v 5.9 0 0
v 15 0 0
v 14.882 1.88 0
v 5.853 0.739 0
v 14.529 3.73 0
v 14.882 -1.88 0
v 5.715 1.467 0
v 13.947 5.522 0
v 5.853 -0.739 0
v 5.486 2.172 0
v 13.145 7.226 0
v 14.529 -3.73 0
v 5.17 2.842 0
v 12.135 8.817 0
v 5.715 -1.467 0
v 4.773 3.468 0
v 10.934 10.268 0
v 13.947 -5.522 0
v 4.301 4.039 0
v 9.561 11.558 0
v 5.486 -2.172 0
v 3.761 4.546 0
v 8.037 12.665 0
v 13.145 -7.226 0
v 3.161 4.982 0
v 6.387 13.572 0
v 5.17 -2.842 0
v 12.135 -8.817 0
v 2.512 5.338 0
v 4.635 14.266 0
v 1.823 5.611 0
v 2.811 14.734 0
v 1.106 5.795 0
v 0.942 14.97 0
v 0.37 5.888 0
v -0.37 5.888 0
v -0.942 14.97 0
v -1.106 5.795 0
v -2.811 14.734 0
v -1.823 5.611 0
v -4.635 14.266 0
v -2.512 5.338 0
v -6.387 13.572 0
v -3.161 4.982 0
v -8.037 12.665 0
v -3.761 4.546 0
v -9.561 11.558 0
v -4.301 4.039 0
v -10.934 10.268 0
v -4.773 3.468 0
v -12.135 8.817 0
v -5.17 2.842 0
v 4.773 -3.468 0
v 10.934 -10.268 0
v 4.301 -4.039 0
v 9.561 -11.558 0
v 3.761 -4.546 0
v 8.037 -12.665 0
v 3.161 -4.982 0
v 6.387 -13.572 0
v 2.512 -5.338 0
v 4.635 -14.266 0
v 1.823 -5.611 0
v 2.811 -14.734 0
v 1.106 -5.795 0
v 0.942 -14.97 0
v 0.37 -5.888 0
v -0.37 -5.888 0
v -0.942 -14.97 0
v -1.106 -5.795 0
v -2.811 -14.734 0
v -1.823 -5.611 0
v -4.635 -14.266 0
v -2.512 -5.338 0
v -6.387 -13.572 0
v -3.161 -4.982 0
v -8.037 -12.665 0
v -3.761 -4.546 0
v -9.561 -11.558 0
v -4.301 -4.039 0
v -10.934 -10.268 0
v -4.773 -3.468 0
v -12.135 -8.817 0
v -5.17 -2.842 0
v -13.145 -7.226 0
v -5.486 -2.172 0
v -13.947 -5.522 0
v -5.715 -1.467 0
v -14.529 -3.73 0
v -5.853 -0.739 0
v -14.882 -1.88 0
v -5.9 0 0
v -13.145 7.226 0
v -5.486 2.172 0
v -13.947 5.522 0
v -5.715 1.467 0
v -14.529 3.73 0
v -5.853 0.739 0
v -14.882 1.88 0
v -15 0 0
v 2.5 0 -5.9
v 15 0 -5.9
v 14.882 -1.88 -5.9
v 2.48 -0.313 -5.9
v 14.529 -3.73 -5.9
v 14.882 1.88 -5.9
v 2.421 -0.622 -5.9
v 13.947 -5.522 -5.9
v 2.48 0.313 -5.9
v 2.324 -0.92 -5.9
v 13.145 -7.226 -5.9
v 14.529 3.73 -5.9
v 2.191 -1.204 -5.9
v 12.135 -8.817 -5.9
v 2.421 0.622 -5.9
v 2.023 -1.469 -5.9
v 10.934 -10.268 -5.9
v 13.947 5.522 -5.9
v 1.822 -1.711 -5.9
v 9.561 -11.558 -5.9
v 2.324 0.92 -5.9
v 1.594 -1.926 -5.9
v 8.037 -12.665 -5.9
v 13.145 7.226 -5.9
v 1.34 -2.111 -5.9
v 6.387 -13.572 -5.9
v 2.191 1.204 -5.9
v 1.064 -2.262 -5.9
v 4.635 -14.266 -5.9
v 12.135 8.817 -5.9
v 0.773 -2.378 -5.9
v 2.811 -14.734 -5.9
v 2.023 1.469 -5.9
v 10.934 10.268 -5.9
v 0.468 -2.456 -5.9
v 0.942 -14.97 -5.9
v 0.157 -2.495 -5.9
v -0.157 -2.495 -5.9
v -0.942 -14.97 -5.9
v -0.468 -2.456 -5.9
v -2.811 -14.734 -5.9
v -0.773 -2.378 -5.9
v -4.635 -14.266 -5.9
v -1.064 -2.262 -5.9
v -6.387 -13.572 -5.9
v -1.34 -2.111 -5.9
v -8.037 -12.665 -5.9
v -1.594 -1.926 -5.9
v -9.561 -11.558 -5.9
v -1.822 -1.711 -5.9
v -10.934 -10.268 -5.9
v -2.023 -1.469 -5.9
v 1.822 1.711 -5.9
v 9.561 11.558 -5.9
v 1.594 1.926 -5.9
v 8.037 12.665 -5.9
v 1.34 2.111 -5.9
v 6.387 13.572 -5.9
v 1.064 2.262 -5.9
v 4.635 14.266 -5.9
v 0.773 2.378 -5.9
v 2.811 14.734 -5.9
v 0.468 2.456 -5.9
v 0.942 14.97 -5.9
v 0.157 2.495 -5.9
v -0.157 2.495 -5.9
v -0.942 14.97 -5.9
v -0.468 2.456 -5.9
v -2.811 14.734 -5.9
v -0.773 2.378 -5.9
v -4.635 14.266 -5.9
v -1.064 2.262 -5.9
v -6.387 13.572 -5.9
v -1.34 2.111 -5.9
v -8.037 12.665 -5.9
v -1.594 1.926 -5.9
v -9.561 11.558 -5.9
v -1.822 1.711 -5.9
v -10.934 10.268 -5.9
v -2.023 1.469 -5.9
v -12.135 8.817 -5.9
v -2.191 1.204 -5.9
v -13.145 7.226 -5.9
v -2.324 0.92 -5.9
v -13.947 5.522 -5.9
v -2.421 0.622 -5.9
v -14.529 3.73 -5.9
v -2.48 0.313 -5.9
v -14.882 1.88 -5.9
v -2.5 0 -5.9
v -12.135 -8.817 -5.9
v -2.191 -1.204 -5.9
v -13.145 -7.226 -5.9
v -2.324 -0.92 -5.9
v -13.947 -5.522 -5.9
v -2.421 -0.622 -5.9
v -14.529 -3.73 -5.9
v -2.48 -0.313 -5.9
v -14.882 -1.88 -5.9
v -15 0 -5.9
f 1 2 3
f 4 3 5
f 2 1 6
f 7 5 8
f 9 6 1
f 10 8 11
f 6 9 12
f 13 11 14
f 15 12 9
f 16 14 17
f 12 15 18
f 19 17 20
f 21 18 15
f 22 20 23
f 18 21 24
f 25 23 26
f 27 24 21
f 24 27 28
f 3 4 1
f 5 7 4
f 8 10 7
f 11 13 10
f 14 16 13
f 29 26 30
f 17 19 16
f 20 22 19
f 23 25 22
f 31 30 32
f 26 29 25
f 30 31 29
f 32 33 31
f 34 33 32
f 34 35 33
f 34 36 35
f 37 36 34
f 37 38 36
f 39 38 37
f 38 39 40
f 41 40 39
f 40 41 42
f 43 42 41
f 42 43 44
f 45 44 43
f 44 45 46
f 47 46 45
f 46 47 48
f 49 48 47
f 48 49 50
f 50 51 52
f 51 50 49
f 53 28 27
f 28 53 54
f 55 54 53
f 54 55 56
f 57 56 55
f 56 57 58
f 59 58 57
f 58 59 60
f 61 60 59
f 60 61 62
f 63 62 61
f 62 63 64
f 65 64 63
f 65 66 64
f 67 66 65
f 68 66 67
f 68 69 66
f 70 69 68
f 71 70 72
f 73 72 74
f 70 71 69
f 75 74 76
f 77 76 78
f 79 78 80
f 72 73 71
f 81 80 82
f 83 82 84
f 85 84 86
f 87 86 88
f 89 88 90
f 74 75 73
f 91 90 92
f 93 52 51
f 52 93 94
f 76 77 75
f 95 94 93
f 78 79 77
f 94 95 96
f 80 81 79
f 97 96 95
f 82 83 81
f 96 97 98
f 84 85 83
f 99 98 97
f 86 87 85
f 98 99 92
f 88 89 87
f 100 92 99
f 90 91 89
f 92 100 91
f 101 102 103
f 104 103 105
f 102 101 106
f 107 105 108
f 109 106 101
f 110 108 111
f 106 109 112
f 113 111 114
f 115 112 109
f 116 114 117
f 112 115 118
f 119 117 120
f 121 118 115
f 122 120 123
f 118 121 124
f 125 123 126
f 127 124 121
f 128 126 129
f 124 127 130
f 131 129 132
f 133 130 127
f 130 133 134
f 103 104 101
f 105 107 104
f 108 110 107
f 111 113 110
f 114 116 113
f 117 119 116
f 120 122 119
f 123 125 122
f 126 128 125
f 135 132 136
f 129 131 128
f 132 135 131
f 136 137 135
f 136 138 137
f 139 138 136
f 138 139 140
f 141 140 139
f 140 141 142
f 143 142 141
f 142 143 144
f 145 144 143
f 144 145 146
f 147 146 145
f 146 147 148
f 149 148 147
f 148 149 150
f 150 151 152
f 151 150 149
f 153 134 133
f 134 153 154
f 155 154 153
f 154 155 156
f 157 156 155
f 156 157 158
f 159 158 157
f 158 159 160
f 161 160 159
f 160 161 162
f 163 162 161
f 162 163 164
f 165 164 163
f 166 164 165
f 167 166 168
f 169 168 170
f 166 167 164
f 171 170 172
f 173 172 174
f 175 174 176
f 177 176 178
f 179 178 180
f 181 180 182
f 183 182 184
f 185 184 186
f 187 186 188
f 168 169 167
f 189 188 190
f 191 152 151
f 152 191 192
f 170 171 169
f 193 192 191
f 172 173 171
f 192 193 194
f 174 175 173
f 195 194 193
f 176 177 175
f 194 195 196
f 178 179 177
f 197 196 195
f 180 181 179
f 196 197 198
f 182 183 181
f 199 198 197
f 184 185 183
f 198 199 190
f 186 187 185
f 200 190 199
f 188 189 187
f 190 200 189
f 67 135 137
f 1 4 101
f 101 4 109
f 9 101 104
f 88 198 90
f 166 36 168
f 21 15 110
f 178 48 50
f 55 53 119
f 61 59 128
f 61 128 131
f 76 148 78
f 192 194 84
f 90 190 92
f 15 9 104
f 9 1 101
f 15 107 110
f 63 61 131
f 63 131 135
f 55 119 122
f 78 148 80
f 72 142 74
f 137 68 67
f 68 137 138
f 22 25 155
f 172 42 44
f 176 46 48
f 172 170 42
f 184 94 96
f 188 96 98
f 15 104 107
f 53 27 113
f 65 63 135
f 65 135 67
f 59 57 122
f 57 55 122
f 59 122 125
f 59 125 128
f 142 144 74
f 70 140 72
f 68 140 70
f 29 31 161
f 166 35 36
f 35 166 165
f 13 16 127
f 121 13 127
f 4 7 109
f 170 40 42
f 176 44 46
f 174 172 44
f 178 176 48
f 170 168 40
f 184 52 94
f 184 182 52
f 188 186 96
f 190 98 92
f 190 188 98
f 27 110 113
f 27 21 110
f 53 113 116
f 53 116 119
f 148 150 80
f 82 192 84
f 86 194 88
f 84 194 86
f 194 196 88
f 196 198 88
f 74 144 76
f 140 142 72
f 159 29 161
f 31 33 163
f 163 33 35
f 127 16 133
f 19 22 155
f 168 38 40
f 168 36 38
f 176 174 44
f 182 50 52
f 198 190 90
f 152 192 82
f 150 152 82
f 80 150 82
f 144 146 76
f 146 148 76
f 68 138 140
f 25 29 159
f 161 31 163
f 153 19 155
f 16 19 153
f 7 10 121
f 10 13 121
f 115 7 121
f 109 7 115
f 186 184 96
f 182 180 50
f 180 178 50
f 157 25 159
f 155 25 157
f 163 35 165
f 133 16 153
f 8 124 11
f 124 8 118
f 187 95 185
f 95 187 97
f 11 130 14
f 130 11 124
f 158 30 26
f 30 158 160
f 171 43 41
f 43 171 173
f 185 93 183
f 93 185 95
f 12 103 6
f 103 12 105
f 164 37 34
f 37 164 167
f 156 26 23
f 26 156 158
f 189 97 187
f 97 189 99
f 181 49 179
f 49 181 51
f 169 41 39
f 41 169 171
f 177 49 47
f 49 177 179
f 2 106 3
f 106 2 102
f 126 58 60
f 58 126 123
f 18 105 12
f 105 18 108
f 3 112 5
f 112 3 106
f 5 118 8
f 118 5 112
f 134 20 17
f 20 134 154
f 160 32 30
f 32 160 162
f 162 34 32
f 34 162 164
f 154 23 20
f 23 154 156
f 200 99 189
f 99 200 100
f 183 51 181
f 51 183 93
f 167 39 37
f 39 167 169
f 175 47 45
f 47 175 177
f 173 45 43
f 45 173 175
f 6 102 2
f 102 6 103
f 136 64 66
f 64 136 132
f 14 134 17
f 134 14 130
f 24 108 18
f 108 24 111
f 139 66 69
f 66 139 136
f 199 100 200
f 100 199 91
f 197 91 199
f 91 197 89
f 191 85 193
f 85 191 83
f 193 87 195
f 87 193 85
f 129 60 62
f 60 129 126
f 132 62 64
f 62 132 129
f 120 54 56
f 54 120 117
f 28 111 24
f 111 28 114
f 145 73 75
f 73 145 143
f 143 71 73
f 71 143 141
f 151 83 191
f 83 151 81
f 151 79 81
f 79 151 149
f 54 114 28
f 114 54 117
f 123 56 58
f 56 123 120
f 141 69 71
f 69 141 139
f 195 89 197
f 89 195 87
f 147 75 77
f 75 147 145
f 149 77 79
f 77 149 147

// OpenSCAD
$fn = 50;


difference() {
	union() {
		translate(v = [0, 0, -5.9000000000]) {
			cylinder(h = 5.9000000000, r = 15.0000000000);
		}
	}
	union() {
		translate(v = [0, 0, 0]) {
			rotate(a = [0, 0, 0]) {
				difference() {
					union() {
						#translate(v = [0, 0, -5.9000000000]) {
							cylinder(h = 5.9000000000, r = 2.2500000000);
						}
						#translate(v = [0, 0, -5.9000000000]) {
							cylinder(h = 5.9000000000, r1 = 2.5000000000, r2 = 5.9000000000);
						}
						#translate(v = [0, 0, -5.9000000000]) {
							cylinder(h = 5.9000000000, r = 2.5000000000);
						}
						#translate(v = [0, 0, -5.9000000000]) {
							cylinder(h = 5.9000000000, r = 2.2500000000);
						}
					}
					union();
				}
			}
		}
	}
}
